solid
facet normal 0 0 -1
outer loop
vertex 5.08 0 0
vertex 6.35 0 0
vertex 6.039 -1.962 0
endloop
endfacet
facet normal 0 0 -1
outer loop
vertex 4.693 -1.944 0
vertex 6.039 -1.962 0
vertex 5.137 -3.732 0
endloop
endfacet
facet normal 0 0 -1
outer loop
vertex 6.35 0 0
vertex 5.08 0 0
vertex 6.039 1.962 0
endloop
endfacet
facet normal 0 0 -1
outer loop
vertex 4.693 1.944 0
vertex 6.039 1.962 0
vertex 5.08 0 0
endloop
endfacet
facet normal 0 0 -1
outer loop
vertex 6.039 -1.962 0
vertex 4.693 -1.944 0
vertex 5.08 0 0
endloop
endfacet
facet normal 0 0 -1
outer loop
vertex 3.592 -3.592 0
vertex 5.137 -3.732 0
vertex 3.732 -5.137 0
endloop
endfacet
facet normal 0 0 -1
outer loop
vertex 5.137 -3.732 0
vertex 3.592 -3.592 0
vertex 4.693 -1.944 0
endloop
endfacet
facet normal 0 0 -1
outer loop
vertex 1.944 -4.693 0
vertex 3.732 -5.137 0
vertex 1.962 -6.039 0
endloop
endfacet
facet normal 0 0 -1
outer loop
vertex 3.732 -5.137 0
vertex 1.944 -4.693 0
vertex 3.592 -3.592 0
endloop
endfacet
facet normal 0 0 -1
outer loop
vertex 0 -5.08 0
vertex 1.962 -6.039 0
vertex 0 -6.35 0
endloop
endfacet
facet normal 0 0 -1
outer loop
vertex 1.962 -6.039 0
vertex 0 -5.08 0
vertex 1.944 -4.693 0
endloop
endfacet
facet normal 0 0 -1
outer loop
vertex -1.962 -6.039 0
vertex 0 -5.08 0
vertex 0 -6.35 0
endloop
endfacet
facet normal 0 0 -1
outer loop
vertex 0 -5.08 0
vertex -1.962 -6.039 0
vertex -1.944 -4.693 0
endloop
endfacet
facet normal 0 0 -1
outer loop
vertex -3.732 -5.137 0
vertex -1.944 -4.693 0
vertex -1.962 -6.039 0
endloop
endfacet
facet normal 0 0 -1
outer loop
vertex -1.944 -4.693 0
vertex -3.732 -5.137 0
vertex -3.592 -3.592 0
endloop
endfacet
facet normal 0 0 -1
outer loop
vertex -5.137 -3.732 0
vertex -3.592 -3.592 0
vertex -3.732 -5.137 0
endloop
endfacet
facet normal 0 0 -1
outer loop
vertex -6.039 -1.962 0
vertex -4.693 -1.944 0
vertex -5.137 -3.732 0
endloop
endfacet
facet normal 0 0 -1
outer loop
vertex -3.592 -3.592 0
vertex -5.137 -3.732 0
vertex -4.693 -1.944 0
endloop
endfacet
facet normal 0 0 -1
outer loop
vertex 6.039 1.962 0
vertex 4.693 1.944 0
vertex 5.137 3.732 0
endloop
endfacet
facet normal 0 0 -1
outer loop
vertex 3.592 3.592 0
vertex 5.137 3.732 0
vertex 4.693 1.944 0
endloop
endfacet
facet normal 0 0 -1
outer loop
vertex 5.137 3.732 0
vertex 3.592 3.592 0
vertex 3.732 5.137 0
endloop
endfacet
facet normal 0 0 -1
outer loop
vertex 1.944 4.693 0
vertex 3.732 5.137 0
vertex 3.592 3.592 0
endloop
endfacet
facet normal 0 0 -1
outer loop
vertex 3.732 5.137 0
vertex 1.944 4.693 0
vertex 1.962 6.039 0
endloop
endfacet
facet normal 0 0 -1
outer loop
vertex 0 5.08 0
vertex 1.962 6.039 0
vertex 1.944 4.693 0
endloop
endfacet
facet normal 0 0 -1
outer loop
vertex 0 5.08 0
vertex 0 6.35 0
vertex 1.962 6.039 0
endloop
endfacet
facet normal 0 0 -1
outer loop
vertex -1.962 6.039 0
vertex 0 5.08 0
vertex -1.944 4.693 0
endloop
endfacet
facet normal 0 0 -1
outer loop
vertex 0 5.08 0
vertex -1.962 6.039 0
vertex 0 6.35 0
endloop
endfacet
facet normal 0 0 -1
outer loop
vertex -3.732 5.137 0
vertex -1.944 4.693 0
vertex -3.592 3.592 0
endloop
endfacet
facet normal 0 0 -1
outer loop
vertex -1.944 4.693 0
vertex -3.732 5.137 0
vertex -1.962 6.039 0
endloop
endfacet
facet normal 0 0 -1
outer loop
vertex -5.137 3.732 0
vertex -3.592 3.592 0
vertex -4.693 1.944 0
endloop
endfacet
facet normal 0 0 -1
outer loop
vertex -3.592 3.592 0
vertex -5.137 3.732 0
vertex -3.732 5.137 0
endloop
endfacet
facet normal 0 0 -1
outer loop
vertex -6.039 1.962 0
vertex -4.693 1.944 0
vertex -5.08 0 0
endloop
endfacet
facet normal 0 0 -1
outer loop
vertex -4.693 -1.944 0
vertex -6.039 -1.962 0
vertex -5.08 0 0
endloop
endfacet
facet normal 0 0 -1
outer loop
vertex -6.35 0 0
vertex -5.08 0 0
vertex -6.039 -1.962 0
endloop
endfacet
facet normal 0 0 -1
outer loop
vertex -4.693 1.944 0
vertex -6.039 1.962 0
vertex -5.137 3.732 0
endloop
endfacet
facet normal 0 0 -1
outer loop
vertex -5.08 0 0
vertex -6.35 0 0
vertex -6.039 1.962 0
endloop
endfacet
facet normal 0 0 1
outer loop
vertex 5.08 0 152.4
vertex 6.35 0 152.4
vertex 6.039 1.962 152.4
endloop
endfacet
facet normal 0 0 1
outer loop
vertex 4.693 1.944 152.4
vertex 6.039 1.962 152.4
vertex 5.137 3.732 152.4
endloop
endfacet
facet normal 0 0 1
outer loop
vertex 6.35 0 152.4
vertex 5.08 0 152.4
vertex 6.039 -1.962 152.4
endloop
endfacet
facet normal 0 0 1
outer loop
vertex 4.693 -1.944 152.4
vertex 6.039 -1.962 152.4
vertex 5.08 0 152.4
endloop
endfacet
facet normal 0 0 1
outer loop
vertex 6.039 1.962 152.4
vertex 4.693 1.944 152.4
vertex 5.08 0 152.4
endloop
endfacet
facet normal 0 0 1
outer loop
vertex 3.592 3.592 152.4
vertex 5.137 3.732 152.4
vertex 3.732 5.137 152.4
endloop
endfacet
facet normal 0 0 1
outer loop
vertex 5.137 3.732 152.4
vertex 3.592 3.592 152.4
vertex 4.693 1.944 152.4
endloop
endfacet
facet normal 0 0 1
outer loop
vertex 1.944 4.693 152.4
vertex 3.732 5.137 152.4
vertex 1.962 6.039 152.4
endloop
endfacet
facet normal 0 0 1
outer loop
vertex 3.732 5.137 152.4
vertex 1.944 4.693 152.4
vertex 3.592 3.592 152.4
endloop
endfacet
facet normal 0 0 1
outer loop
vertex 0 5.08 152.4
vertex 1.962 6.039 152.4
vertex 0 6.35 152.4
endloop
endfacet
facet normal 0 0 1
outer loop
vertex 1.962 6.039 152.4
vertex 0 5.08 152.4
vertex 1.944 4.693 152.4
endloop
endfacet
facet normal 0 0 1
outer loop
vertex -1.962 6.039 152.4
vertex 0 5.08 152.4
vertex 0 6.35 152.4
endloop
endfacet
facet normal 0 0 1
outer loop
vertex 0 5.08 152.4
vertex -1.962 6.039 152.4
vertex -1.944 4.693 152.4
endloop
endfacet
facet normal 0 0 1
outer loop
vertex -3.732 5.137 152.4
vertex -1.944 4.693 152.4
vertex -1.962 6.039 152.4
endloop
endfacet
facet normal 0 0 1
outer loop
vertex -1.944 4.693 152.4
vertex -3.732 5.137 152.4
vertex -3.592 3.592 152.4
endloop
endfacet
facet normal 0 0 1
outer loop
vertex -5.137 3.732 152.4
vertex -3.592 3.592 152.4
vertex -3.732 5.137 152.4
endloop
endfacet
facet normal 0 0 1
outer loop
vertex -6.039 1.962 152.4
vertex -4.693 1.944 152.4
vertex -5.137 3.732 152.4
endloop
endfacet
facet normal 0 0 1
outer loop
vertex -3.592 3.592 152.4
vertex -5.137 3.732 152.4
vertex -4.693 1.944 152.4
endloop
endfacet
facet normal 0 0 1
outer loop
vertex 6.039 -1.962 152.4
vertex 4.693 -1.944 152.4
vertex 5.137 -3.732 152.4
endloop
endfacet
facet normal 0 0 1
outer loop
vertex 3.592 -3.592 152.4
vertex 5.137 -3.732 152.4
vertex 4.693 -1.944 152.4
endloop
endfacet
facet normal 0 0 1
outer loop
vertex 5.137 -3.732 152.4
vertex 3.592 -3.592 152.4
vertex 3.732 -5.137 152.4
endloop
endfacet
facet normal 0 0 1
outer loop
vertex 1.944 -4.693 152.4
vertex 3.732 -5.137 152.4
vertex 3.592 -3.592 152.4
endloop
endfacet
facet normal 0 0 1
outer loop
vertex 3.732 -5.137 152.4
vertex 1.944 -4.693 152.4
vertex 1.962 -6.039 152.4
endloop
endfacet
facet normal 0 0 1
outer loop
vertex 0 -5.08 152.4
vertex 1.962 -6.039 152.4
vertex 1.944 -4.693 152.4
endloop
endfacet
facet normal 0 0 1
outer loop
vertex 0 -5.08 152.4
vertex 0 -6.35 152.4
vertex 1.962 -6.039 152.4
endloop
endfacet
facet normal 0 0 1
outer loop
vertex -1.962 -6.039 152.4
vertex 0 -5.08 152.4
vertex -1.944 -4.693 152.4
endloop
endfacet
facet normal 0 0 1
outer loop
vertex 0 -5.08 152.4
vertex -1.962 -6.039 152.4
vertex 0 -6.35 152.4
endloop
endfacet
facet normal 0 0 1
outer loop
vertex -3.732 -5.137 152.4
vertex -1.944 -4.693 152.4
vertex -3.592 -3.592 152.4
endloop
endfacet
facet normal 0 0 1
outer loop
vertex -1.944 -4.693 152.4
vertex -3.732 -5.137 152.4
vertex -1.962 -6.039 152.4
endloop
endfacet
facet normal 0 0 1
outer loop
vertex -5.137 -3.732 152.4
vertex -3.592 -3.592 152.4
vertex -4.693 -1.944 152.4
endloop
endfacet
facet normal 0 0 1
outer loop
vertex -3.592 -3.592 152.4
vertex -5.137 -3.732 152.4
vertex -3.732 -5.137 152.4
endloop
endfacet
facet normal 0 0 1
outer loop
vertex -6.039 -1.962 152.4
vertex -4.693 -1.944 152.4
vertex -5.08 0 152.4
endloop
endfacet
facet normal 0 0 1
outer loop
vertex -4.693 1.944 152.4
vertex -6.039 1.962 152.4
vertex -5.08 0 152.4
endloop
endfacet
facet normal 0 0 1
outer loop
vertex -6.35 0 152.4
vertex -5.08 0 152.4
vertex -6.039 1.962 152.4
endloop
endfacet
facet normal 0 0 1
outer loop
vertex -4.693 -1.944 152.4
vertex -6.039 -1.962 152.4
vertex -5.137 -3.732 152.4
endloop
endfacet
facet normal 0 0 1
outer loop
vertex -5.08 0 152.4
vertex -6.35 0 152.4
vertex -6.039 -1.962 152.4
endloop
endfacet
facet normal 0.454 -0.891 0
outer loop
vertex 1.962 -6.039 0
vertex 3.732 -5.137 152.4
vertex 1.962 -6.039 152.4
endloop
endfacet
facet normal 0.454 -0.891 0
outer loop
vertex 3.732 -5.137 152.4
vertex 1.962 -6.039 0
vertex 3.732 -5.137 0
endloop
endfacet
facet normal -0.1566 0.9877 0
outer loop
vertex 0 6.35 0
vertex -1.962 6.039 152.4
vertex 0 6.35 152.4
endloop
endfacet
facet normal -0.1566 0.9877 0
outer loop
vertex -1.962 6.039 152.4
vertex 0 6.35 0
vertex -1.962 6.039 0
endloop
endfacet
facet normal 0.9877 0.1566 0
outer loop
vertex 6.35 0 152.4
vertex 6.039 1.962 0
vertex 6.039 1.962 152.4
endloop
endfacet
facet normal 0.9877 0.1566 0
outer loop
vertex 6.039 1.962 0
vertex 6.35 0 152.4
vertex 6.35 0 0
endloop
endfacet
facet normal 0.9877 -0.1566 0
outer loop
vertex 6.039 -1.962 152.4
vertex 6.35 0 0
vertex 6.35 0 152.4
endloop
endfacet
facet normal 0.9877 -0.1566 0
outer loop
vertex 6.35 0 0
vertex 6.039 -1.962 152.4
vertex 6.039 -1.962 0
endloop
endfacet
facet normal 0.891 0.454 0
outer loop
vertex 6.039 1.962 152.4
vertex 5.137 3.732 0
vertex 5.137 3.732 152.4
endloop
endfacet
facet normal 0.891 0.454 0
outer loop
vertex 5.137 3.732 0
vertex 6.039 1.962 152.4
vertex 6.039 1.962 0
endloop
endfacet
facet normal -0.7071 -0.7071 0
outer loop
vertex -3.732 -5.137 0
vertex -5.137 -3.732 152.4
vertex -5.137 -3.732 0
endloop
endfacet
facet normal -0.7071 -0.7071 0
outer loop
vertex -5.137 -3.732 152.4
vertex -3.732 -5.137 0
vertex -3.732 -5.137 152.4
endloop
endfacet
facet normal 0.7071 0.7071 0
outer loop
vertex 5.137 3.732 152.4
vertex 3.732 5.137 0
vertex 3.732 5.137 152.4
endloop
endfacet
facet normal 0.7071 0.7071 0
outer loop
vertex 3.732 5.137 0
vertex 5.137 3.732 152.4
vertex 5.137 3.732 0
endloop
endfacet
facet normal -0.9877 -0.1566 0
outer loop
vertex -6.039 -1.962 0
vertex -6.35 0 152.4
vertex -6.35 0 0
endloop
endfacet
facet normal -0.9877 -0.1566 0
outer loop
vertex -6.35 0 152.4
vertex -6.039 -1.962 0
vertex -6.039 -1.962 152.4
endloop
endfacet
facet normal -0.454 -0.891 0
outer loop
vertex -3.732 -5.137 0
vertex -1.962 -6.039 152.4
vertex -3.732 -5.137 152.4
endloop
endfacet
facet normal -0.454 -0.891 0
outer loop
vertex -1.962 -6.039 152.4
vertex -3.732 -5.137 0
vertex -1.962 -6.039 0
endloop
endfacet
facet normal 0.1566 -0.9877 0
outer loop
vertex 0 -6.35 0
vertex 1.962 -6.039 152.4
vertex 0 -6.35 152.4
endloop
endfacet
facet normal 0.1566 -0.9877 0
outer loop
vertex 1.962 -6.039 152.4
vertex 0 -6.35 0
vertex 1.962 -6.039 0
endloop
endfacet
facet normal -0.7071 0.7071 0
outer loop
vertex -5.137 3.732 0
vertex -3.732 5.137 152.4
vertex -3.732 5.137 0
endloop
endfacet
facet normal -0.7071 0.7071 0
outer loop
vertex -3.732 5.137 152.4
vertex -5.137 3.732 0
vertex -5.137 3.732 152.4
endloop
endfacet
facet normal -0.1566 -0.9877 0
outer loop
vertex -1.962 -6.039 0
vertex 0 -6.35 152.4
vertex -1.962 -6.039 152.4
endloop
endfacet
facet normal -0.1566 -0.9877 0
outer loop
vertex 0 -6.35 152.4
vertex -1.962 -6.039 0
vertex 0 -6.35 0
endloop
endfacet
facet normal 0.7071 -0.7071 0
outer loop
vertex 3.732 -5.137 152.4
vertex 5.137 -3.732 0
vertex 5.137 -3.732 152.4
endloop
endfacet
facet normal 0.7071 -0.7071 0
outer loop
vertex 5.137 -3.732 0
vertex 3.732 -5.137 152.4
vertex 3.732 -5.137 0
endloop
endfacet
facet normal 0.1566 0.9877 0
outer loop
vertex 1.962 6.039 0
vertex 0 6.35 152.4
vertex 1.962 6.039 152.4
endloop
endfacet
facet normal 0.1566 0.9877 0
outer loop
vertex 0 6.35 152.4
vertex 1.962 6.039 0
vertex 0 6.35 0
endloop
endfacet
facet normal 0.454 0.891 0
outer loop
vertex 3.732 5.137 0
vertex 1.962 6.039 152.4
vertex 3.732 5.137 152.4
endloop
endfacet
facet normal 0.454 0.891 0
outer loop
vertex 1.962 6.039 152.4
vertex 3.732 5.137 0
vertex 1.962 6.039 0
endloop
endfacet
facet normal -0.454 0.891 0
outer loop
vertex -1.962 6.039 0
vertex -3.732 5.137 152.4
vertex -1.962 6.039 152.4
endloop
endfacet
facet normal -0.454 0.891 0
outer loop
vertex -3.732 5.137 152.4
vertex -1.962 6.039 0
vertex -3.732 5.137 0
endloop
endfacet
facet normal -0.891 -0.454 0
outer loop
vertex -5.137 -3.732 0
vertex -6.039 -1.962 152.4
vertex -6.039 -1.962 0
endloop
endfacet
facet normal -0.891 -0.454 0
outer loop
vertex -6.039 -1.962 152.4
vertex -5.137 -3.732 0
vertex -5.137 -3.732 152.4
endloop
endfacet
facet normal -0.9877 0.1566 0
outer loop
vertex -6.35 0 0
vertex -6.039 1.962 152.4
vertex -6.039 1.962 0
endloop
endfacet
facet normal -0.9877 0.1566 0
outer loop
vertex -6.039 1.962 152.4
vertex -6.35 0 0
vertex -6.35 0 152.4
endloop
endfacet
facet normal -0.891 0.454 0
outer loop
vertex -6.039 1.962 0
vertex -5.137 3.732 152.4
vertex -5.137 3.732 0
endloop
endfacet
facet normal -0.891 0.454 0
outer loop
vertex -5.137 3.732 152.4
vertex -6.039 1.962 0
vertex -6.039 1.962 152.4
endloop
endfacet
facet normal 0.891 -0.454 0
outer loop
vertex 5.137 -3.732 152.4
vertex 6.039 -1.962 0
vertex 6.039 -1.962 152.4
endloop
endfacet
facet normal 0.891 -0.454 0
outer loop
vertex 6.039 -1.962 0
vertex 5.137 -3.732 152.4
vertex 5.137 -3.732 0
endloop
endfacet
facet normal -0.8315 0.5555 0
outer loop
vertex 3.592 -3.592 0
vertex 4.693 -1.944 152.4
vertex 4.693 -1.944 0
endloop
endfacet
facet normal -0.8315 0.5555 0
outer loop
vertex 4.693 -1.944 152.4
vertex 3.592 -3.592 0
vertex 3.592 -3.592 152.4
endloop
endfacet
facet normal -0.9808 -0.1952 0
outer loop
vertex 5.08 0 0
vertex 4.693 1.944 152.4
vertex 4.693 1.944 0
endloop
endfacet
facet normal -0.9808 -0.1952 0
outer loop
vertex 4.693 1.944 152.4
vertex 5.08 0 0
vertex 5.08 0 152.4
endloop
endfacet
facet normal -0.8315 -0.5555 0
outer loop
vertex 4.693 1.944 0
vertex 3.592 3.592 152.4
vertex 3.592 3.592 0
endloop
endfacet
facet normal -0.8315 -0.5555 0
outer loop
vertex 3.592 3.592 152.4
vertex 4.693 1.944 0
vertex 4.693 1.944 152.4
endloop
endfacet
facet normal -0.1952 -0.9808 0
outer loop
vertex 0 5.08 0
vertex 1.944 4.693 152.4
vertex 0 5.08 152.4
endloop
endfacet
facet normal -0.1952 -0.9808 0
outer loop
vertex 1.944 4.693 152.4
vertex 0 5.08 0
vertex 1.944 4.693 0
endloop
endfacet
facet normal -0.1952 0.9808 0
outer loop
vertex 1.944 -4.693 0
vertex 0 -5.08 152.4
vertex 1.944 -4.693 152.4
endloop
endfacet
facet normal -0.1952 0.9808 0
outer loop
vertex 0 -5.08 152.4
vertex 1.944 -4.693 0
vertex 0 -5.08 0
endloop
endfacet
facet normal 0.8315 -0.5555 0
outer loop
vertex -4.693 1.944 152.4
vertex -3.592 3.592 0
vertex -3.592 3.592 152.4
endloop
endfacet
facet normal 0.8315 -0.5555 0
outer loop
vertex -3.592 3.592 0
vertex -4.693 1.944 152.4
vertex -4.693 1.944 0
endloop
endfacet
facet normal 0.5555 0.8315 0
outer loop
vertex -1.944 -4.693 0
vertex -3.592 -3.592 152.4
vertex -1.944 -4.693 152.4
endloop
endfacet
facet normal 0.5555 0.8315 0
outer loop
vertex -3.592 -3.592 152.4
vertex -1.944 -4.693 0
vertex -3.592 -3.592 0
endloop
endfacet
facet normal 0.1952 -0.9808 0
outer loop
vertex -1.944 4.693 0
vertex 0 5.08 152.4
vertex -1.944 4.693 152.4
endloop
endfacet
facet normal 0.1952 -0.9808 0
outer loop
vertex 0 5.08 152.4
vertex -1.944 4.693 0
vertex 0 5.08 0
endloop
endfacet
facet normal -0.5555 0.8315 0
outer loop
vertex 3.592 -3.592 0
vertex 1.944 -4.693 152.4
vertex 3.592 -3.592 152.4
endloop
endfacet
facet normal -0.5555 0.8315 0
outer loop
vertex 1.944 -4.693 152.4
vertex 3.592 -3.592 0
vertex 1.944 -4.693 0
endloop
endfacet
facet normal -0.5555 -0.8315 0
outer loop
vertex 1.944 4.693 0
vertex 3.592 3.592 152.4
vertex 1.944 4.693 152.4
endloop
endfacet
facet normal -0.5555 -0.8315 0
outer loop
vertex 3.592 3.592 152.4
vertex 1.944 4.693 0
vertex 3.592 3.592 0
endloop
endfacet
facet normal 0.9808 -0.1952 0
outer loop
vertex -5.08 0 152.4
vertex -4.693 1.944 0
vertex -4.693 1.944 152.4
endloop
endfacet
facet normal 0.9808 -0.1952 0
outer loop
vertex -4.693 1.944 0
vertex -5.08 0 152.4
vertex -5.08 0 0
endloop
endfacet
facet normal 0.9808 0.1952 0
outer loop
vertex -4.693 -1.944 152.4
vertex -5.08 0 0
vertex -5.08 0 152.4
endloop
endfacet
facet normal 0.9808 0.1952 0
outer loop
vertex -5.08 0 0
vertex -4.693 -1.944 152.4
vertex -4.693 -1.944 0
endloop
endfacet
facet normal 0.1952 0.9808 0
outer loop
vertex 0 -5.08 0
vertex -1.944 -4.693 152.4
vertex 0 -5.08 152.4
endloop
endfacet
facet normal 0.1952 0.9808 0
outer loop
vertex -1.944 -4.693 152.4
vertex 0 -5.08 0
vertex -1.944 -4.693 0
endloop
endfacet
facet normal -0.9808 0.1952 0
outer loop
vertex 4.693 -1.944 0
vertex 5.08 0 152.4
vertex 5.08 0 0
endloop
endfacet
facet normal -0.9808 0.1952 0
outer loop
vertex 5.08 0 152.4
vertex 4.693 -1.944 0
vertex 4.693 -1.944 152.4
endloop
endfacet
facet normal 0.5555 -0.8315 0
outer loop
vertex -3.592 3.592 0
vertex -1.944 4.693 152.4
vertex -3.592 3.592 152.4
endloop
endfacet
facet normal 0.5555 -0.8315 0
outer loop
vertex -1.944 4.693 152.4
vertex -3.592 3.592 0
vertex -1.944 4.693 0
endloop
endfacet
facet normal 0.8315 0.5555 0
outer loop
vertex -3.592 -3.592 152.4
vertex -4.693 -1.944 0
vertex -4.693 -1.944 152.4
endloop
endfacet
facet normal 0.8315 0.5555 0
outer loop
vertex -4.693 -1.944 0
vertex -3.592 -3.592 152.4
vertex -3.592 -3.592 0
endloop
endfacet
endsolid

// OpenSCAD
// Variables
cap_w = 8*25.4;
cap_h = 12*25.4;
cap_lip = 25.4;
cap_ga = .3175;
pipe_ga = .2;
inch = 25.4;

// Raw Parts
module odCylinder() {
    color("Gainsboro")
    cylinder(h=6*inch,d=inch*.5);
}

// Cuts
module idCylinder() {
    color("Red")
    translate([0,0,-inch])
    cylinder(h=8*inch,d=inch*.5-inch*.5*pipe_ga);
}
// Cut Part
module halfinchEmt(); {
    difference() {
        odCylinder();
        union() {
            idCylinder();
        }
    }
}
